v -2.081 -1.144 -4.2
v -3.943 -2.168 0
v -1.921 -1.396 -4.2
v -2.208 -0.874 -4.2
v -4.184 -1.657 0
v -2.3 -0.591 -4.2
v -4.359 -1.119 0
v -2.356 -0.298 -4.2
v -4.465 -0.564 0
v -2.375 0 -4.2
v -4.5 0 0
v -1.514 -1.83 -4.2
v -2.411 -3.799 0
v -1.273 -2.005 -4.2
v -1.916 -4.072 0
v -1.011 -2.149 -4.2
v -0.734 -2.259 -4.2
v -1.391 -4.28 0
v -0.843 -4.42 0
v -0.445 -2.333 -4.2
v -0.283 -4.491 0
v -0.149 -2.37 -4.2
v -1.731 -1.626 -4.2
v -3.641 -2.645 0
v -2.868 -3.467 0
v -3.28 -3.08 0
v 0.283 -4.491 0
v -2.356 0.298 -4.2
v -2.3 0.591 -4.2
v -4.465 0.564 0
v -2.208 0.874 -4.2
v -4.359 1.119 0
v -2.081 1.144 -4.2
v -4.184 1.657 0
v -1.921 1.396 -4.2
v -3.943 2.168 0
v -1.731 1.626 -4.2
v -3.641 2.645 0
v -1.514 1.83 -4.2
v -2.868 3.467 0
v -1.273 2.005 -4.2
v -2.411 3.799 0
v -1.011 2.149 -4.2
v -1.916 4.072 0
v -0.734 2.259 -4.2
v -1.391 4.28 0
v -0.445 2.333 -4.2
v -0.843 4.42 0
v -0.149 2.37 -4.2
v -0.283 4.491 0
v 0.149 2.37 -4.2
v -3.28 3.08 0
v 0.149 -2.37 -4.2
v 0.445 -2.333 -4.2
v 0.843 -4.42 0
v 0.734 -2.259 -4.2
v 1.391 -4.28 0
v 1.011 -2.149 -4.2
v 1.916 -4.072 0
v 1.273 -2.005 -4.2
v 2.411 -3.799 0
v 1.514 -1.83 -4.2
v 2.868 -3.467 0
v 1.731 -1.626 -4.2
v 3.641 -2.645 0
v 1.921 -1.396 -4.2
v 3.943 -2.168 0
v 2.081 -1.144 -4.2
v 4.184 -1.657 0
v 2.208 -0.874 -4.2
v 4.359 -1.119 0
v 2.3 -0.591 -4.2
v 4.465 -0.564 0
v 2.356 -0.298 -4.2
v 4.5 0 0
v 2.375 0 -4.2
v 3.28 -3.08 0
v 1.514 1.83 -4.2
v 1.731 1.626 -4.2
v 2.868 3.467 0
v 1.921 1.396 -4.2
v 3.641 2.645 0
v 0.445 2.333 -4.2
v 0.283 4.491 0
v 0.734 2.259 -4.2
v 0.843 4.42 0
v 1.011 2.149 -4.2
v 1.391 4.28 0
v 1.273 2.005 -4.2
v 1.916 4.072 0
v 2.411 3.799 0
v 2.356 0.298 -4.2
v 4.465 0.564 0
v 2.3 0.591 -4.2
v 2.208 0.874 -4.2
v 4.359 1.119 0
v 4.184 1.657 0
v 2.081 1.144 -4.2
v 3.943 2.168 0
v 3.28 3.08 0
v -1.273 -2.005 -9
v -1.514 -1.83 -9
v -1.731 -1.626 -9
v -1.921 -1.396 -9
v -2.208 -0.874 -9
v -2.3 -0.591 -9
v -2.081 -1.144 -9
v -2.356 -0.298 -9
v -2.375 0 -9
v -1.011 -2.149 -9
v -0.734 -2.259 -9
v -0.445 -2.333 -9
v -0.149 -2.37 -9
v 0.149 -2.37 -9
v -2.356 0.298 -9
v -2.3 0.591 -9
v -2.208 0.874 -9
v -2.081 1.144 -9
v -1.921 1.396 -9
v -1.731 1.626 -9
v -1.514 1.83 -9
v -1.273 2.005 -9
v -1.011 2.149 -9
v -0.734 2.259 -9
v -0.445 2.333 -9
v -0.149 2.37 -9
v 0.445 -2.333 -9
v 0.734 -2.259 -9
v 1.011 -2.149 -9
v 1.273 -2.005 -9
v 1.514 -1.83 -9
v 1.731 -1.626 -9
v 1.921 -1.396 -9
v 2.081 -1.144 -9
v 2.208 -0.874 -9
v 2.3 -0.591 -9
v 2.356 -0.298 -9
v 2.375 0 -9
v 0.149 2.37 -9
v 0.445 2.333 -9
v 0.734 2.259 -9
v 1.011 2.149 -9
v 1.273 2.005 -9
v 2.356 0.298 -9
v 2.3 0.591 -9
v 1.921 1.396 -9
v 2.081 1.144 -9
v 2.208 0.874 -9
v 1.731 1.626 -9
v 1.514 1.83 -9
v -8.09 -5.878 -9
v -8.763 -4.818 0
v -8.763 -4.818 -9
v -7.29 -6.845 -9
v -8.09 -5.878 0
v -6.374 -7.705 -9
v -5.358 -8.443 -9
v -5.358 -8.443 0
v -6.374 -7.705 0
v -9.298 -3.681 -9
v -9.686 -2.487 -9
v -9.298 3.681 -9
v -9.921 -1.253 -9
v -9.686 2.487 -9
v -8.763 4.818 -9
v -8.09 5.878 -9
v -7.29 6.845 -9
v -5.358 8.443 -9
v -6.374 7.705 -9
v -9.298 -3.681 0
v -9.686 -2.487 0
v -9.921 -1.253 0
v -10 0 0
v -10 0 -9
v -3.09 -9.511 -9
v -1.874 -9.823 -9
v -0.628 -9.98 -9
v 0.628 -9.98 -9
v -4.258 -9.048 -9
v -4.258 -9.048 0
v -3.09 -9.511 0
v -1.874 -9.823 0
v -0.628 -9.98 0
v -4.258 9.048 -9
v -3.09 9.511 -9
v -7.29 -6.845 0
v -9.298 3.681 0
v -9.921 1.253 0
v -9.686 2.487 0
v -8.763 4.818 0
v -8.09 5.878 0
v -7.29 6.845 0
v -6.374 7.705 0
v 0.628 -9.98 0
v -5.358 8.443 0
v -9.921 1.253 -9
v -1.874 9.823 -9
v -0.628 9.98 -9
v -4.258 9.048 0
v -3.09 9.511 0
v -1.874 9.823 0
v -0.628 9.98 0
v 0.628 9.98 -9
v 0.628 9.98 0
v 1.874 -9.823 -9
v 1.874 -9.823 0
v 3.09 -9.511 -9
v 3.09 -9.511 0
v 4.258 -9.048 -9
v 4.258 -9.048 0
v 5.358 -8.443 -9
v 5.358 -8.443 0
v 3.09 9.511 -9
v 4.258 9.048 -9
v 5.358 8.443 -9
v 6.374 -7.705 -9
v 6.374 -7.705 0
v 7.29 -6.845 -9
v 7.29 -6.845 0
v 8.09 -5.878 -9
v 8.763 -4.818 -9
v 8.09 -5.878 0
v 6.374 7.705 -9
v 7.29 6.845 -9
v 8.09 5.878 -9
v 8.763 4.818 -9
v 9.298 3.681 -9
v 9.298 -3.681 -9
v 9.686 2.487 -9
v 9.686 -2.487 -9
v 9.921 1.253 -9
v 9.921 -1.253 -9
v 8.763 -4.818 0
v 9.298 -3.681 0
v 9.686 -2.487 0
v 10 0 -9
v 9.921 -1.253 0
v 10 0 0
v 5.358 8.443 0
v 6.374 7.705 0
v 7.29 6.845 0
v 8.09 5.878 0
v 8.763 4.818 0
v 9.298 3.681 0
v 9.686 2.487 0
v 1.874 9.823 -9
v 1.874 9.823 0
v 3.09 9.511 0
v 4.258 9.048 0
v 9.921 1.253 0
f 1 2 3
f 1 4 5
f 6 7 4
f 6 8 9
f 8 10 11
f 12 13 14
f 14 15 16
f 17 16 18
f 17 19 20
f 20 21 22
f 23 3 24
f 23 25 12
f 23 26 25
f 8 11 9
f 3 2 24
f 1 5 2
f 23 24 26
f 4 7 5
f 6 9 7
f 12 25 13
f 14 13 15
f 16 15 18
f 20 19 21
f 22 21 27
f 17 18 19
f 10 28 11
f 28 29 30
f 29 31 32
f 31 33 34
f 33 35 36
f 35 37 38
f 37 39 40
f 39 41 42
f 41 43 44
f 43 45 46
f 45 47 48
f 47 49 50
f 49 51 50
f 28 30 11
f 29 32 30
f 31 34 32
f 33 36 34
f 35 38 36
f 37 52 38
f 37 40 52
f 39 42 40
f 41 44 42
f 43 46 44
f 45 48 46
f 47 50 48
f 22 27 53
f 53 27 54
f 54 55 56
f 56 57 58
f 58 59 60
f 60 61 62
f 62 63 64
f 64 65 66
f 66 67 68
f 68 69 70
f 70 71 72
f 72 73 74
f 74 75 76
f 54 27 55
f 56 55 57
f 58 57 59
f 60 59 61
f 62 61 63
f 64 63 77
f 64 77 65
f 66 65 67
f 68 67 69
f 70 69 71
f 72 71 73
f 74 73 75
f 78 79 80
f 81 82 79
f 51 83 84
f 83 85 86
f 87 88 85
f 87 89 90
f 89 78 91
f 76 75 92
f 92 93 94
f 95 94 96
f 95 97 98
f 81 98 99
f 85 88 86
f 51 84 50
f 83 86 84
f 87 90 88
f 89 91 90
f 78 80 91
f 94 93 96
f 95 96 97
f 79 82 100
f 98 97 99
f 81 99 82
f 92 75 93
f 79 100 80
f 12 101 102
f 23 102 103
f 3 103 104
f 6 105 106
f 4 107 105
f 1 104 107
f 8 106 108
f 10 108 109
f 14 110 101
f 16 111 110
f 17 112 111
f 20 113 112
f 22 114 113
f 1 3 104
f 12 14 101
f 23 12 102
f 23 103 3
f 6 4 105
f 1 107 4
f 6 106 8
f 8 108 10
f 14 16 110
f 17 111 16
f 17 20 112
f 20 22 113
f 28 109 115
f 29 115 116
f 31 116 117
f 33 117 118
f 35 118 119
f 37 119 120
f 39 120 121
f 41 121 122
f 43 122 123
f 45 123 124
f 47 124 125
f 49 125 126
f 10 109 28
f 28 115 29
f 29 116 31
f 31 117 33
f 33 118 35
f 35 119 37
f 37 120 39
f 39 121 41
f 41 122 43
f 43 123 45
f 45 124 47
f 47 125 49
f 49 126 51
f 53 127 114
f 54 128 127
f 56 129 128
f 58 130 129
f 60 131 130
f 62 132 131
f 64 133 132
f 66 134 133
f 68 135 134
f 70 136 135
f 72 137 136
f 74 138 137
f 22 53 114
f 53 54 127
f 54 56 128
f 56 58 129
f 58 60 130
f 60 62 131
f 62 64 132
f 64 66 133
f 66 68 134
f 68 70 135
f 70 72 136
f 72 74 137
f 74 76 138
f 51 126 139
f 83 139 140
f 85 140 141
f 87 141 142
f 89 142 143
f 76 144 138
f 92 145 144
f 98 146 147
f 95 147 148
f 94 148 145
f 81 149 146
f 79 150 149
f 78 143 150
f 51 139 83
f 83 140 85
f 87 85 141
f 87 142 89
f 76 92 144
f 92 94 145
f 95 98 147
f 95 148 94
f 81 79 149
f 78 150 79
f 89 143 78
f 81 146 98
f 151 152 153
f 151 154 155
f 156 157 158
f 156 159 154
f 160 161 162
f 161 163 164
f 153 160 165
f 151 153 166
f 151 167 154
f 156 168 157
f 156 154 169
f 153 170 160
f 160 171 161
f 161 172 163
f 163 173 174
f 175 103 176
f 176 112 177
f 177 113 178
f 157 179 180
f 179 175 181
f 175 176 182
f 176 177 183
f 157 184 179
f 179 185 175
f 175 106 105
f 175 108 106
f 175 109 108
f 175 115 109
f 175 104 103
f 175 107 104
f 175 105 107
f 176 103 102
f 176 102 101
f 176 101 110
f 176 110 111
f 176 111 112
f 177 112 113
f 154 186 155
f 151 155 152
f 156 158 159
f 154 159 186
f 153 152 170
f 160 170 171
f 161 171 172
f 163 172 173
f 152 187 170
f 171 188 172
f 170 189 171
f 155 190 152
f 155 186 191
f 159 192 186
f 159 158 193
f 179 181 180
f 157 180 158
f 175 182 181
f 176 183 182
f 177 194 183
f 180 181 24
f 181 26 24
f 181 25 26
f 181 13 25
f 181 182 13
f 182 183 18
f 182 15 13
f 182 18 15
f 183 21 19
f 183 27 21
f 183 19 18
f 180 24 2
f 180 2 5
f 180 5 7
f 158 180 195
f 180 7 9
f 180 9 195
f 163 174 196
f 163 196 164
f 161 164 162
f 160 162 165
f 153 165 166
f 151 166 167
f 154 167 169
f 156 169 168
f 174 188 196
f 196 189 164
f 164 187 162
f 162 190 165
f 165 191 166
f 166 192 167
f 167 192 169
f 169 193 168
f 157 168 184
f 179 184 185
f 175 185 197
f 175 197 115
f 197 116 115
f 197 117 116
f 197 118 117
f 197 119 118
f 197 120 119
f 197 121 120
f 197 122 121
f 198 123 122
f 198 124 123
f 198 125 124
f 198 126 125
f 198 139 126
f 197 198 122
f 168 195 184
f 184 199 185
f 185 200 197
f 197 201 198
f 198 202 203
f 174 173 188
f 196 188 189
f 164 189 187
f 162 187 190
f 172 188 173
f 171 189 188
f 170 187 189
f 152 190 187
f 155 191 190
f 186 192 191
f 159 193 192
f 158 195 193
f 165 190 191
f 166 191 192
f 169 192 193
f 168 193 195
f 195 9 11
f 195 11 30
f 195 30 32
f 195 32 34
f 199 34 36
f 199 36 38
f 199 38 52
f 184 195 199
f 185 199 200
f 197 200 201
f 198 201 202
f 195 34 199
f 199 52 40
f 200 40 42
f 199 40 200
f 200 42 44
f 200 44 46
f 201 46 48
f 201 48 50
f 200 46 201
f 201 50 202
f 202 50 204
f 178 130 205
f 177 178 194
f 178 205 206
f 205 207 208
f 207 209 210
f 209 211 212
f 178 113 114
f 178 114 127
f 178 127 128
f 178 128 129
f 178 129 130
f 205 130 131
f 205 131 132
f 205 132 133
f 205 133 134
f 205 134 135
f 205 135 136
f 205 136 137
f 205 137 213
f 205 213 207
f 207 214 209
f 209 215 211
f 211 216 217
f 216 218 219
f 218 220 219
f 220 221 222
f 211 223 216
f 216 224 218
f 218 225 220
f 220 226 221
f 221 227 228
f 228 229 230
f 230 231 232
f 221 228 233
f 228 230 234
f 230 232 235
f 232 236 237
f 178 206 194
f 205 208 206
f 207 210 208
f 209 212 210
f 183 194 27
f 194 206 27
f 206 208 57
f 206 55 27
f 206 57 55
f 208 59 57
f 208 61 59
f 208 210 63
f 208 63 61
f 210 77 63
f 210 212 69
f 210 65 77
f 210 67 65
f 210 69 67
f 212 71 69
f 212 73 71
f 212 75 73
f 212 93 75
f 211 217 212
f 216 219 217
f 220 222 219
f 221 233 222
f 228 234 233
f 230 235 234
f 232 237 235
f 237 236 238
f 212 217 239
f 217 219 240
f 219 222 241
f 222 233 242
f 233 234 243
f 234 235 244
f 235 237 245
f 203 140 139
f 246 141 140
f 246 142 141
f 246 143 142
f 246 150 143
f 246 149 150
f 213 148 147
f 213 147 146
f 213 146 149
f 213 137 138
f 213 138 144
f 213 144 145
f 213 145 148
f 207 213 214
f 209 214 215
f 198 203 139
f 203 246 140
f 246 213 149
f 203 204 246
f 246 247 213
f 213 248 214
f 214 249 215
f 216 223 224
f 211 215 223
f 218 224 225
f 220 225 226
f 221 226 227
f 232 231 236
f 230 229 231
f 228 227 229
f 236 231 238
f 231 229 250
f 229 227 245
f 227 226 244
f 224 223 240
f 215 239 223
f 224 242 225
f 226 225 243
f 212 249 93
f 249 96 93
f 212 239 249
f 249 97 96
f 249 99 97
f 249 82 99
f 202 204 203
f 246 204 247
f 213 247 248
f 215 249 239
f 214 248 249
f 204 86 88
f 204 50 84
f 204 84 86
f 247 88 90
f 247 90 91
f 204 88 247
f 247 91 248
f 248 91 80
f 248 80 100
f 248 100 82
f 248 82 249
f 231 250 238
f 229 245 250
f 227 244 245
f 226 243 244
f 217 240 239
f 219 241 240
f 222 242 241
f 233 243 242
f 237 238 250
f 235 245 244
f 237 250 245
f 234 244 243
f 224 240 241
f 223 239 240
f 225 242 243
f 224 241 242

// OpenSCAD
$fn = 50;

difference() {
	union() {
		translate(v = [0, 0, -9.0]) {
			cylinder(h = 9, r = 10.0);
		}
	}
	union() {
		translate(v = [0, 0, 0]) {
			rotate(a = [0, 0, 0]) {
				difference() {
					union() {
						translate(v = [0, 0, -12.0]) {
							cylinder(h = 12, r = 2.25);
						}
						translate(v = [0, 0, -4.2]) {
							cylinder(h = 4.2, r1 = 2.375, r2 = 4.5);
						}
						translate(v = [0, 0, -12.0]) {
							cylinder(h = 12, r = 2.375);
						}
						translate(v = [0, 0, -12.0]) {
							cylinder(h = 12, r = 2.25);
						}
					}
					union();
				}
			}
		}
	}
}
